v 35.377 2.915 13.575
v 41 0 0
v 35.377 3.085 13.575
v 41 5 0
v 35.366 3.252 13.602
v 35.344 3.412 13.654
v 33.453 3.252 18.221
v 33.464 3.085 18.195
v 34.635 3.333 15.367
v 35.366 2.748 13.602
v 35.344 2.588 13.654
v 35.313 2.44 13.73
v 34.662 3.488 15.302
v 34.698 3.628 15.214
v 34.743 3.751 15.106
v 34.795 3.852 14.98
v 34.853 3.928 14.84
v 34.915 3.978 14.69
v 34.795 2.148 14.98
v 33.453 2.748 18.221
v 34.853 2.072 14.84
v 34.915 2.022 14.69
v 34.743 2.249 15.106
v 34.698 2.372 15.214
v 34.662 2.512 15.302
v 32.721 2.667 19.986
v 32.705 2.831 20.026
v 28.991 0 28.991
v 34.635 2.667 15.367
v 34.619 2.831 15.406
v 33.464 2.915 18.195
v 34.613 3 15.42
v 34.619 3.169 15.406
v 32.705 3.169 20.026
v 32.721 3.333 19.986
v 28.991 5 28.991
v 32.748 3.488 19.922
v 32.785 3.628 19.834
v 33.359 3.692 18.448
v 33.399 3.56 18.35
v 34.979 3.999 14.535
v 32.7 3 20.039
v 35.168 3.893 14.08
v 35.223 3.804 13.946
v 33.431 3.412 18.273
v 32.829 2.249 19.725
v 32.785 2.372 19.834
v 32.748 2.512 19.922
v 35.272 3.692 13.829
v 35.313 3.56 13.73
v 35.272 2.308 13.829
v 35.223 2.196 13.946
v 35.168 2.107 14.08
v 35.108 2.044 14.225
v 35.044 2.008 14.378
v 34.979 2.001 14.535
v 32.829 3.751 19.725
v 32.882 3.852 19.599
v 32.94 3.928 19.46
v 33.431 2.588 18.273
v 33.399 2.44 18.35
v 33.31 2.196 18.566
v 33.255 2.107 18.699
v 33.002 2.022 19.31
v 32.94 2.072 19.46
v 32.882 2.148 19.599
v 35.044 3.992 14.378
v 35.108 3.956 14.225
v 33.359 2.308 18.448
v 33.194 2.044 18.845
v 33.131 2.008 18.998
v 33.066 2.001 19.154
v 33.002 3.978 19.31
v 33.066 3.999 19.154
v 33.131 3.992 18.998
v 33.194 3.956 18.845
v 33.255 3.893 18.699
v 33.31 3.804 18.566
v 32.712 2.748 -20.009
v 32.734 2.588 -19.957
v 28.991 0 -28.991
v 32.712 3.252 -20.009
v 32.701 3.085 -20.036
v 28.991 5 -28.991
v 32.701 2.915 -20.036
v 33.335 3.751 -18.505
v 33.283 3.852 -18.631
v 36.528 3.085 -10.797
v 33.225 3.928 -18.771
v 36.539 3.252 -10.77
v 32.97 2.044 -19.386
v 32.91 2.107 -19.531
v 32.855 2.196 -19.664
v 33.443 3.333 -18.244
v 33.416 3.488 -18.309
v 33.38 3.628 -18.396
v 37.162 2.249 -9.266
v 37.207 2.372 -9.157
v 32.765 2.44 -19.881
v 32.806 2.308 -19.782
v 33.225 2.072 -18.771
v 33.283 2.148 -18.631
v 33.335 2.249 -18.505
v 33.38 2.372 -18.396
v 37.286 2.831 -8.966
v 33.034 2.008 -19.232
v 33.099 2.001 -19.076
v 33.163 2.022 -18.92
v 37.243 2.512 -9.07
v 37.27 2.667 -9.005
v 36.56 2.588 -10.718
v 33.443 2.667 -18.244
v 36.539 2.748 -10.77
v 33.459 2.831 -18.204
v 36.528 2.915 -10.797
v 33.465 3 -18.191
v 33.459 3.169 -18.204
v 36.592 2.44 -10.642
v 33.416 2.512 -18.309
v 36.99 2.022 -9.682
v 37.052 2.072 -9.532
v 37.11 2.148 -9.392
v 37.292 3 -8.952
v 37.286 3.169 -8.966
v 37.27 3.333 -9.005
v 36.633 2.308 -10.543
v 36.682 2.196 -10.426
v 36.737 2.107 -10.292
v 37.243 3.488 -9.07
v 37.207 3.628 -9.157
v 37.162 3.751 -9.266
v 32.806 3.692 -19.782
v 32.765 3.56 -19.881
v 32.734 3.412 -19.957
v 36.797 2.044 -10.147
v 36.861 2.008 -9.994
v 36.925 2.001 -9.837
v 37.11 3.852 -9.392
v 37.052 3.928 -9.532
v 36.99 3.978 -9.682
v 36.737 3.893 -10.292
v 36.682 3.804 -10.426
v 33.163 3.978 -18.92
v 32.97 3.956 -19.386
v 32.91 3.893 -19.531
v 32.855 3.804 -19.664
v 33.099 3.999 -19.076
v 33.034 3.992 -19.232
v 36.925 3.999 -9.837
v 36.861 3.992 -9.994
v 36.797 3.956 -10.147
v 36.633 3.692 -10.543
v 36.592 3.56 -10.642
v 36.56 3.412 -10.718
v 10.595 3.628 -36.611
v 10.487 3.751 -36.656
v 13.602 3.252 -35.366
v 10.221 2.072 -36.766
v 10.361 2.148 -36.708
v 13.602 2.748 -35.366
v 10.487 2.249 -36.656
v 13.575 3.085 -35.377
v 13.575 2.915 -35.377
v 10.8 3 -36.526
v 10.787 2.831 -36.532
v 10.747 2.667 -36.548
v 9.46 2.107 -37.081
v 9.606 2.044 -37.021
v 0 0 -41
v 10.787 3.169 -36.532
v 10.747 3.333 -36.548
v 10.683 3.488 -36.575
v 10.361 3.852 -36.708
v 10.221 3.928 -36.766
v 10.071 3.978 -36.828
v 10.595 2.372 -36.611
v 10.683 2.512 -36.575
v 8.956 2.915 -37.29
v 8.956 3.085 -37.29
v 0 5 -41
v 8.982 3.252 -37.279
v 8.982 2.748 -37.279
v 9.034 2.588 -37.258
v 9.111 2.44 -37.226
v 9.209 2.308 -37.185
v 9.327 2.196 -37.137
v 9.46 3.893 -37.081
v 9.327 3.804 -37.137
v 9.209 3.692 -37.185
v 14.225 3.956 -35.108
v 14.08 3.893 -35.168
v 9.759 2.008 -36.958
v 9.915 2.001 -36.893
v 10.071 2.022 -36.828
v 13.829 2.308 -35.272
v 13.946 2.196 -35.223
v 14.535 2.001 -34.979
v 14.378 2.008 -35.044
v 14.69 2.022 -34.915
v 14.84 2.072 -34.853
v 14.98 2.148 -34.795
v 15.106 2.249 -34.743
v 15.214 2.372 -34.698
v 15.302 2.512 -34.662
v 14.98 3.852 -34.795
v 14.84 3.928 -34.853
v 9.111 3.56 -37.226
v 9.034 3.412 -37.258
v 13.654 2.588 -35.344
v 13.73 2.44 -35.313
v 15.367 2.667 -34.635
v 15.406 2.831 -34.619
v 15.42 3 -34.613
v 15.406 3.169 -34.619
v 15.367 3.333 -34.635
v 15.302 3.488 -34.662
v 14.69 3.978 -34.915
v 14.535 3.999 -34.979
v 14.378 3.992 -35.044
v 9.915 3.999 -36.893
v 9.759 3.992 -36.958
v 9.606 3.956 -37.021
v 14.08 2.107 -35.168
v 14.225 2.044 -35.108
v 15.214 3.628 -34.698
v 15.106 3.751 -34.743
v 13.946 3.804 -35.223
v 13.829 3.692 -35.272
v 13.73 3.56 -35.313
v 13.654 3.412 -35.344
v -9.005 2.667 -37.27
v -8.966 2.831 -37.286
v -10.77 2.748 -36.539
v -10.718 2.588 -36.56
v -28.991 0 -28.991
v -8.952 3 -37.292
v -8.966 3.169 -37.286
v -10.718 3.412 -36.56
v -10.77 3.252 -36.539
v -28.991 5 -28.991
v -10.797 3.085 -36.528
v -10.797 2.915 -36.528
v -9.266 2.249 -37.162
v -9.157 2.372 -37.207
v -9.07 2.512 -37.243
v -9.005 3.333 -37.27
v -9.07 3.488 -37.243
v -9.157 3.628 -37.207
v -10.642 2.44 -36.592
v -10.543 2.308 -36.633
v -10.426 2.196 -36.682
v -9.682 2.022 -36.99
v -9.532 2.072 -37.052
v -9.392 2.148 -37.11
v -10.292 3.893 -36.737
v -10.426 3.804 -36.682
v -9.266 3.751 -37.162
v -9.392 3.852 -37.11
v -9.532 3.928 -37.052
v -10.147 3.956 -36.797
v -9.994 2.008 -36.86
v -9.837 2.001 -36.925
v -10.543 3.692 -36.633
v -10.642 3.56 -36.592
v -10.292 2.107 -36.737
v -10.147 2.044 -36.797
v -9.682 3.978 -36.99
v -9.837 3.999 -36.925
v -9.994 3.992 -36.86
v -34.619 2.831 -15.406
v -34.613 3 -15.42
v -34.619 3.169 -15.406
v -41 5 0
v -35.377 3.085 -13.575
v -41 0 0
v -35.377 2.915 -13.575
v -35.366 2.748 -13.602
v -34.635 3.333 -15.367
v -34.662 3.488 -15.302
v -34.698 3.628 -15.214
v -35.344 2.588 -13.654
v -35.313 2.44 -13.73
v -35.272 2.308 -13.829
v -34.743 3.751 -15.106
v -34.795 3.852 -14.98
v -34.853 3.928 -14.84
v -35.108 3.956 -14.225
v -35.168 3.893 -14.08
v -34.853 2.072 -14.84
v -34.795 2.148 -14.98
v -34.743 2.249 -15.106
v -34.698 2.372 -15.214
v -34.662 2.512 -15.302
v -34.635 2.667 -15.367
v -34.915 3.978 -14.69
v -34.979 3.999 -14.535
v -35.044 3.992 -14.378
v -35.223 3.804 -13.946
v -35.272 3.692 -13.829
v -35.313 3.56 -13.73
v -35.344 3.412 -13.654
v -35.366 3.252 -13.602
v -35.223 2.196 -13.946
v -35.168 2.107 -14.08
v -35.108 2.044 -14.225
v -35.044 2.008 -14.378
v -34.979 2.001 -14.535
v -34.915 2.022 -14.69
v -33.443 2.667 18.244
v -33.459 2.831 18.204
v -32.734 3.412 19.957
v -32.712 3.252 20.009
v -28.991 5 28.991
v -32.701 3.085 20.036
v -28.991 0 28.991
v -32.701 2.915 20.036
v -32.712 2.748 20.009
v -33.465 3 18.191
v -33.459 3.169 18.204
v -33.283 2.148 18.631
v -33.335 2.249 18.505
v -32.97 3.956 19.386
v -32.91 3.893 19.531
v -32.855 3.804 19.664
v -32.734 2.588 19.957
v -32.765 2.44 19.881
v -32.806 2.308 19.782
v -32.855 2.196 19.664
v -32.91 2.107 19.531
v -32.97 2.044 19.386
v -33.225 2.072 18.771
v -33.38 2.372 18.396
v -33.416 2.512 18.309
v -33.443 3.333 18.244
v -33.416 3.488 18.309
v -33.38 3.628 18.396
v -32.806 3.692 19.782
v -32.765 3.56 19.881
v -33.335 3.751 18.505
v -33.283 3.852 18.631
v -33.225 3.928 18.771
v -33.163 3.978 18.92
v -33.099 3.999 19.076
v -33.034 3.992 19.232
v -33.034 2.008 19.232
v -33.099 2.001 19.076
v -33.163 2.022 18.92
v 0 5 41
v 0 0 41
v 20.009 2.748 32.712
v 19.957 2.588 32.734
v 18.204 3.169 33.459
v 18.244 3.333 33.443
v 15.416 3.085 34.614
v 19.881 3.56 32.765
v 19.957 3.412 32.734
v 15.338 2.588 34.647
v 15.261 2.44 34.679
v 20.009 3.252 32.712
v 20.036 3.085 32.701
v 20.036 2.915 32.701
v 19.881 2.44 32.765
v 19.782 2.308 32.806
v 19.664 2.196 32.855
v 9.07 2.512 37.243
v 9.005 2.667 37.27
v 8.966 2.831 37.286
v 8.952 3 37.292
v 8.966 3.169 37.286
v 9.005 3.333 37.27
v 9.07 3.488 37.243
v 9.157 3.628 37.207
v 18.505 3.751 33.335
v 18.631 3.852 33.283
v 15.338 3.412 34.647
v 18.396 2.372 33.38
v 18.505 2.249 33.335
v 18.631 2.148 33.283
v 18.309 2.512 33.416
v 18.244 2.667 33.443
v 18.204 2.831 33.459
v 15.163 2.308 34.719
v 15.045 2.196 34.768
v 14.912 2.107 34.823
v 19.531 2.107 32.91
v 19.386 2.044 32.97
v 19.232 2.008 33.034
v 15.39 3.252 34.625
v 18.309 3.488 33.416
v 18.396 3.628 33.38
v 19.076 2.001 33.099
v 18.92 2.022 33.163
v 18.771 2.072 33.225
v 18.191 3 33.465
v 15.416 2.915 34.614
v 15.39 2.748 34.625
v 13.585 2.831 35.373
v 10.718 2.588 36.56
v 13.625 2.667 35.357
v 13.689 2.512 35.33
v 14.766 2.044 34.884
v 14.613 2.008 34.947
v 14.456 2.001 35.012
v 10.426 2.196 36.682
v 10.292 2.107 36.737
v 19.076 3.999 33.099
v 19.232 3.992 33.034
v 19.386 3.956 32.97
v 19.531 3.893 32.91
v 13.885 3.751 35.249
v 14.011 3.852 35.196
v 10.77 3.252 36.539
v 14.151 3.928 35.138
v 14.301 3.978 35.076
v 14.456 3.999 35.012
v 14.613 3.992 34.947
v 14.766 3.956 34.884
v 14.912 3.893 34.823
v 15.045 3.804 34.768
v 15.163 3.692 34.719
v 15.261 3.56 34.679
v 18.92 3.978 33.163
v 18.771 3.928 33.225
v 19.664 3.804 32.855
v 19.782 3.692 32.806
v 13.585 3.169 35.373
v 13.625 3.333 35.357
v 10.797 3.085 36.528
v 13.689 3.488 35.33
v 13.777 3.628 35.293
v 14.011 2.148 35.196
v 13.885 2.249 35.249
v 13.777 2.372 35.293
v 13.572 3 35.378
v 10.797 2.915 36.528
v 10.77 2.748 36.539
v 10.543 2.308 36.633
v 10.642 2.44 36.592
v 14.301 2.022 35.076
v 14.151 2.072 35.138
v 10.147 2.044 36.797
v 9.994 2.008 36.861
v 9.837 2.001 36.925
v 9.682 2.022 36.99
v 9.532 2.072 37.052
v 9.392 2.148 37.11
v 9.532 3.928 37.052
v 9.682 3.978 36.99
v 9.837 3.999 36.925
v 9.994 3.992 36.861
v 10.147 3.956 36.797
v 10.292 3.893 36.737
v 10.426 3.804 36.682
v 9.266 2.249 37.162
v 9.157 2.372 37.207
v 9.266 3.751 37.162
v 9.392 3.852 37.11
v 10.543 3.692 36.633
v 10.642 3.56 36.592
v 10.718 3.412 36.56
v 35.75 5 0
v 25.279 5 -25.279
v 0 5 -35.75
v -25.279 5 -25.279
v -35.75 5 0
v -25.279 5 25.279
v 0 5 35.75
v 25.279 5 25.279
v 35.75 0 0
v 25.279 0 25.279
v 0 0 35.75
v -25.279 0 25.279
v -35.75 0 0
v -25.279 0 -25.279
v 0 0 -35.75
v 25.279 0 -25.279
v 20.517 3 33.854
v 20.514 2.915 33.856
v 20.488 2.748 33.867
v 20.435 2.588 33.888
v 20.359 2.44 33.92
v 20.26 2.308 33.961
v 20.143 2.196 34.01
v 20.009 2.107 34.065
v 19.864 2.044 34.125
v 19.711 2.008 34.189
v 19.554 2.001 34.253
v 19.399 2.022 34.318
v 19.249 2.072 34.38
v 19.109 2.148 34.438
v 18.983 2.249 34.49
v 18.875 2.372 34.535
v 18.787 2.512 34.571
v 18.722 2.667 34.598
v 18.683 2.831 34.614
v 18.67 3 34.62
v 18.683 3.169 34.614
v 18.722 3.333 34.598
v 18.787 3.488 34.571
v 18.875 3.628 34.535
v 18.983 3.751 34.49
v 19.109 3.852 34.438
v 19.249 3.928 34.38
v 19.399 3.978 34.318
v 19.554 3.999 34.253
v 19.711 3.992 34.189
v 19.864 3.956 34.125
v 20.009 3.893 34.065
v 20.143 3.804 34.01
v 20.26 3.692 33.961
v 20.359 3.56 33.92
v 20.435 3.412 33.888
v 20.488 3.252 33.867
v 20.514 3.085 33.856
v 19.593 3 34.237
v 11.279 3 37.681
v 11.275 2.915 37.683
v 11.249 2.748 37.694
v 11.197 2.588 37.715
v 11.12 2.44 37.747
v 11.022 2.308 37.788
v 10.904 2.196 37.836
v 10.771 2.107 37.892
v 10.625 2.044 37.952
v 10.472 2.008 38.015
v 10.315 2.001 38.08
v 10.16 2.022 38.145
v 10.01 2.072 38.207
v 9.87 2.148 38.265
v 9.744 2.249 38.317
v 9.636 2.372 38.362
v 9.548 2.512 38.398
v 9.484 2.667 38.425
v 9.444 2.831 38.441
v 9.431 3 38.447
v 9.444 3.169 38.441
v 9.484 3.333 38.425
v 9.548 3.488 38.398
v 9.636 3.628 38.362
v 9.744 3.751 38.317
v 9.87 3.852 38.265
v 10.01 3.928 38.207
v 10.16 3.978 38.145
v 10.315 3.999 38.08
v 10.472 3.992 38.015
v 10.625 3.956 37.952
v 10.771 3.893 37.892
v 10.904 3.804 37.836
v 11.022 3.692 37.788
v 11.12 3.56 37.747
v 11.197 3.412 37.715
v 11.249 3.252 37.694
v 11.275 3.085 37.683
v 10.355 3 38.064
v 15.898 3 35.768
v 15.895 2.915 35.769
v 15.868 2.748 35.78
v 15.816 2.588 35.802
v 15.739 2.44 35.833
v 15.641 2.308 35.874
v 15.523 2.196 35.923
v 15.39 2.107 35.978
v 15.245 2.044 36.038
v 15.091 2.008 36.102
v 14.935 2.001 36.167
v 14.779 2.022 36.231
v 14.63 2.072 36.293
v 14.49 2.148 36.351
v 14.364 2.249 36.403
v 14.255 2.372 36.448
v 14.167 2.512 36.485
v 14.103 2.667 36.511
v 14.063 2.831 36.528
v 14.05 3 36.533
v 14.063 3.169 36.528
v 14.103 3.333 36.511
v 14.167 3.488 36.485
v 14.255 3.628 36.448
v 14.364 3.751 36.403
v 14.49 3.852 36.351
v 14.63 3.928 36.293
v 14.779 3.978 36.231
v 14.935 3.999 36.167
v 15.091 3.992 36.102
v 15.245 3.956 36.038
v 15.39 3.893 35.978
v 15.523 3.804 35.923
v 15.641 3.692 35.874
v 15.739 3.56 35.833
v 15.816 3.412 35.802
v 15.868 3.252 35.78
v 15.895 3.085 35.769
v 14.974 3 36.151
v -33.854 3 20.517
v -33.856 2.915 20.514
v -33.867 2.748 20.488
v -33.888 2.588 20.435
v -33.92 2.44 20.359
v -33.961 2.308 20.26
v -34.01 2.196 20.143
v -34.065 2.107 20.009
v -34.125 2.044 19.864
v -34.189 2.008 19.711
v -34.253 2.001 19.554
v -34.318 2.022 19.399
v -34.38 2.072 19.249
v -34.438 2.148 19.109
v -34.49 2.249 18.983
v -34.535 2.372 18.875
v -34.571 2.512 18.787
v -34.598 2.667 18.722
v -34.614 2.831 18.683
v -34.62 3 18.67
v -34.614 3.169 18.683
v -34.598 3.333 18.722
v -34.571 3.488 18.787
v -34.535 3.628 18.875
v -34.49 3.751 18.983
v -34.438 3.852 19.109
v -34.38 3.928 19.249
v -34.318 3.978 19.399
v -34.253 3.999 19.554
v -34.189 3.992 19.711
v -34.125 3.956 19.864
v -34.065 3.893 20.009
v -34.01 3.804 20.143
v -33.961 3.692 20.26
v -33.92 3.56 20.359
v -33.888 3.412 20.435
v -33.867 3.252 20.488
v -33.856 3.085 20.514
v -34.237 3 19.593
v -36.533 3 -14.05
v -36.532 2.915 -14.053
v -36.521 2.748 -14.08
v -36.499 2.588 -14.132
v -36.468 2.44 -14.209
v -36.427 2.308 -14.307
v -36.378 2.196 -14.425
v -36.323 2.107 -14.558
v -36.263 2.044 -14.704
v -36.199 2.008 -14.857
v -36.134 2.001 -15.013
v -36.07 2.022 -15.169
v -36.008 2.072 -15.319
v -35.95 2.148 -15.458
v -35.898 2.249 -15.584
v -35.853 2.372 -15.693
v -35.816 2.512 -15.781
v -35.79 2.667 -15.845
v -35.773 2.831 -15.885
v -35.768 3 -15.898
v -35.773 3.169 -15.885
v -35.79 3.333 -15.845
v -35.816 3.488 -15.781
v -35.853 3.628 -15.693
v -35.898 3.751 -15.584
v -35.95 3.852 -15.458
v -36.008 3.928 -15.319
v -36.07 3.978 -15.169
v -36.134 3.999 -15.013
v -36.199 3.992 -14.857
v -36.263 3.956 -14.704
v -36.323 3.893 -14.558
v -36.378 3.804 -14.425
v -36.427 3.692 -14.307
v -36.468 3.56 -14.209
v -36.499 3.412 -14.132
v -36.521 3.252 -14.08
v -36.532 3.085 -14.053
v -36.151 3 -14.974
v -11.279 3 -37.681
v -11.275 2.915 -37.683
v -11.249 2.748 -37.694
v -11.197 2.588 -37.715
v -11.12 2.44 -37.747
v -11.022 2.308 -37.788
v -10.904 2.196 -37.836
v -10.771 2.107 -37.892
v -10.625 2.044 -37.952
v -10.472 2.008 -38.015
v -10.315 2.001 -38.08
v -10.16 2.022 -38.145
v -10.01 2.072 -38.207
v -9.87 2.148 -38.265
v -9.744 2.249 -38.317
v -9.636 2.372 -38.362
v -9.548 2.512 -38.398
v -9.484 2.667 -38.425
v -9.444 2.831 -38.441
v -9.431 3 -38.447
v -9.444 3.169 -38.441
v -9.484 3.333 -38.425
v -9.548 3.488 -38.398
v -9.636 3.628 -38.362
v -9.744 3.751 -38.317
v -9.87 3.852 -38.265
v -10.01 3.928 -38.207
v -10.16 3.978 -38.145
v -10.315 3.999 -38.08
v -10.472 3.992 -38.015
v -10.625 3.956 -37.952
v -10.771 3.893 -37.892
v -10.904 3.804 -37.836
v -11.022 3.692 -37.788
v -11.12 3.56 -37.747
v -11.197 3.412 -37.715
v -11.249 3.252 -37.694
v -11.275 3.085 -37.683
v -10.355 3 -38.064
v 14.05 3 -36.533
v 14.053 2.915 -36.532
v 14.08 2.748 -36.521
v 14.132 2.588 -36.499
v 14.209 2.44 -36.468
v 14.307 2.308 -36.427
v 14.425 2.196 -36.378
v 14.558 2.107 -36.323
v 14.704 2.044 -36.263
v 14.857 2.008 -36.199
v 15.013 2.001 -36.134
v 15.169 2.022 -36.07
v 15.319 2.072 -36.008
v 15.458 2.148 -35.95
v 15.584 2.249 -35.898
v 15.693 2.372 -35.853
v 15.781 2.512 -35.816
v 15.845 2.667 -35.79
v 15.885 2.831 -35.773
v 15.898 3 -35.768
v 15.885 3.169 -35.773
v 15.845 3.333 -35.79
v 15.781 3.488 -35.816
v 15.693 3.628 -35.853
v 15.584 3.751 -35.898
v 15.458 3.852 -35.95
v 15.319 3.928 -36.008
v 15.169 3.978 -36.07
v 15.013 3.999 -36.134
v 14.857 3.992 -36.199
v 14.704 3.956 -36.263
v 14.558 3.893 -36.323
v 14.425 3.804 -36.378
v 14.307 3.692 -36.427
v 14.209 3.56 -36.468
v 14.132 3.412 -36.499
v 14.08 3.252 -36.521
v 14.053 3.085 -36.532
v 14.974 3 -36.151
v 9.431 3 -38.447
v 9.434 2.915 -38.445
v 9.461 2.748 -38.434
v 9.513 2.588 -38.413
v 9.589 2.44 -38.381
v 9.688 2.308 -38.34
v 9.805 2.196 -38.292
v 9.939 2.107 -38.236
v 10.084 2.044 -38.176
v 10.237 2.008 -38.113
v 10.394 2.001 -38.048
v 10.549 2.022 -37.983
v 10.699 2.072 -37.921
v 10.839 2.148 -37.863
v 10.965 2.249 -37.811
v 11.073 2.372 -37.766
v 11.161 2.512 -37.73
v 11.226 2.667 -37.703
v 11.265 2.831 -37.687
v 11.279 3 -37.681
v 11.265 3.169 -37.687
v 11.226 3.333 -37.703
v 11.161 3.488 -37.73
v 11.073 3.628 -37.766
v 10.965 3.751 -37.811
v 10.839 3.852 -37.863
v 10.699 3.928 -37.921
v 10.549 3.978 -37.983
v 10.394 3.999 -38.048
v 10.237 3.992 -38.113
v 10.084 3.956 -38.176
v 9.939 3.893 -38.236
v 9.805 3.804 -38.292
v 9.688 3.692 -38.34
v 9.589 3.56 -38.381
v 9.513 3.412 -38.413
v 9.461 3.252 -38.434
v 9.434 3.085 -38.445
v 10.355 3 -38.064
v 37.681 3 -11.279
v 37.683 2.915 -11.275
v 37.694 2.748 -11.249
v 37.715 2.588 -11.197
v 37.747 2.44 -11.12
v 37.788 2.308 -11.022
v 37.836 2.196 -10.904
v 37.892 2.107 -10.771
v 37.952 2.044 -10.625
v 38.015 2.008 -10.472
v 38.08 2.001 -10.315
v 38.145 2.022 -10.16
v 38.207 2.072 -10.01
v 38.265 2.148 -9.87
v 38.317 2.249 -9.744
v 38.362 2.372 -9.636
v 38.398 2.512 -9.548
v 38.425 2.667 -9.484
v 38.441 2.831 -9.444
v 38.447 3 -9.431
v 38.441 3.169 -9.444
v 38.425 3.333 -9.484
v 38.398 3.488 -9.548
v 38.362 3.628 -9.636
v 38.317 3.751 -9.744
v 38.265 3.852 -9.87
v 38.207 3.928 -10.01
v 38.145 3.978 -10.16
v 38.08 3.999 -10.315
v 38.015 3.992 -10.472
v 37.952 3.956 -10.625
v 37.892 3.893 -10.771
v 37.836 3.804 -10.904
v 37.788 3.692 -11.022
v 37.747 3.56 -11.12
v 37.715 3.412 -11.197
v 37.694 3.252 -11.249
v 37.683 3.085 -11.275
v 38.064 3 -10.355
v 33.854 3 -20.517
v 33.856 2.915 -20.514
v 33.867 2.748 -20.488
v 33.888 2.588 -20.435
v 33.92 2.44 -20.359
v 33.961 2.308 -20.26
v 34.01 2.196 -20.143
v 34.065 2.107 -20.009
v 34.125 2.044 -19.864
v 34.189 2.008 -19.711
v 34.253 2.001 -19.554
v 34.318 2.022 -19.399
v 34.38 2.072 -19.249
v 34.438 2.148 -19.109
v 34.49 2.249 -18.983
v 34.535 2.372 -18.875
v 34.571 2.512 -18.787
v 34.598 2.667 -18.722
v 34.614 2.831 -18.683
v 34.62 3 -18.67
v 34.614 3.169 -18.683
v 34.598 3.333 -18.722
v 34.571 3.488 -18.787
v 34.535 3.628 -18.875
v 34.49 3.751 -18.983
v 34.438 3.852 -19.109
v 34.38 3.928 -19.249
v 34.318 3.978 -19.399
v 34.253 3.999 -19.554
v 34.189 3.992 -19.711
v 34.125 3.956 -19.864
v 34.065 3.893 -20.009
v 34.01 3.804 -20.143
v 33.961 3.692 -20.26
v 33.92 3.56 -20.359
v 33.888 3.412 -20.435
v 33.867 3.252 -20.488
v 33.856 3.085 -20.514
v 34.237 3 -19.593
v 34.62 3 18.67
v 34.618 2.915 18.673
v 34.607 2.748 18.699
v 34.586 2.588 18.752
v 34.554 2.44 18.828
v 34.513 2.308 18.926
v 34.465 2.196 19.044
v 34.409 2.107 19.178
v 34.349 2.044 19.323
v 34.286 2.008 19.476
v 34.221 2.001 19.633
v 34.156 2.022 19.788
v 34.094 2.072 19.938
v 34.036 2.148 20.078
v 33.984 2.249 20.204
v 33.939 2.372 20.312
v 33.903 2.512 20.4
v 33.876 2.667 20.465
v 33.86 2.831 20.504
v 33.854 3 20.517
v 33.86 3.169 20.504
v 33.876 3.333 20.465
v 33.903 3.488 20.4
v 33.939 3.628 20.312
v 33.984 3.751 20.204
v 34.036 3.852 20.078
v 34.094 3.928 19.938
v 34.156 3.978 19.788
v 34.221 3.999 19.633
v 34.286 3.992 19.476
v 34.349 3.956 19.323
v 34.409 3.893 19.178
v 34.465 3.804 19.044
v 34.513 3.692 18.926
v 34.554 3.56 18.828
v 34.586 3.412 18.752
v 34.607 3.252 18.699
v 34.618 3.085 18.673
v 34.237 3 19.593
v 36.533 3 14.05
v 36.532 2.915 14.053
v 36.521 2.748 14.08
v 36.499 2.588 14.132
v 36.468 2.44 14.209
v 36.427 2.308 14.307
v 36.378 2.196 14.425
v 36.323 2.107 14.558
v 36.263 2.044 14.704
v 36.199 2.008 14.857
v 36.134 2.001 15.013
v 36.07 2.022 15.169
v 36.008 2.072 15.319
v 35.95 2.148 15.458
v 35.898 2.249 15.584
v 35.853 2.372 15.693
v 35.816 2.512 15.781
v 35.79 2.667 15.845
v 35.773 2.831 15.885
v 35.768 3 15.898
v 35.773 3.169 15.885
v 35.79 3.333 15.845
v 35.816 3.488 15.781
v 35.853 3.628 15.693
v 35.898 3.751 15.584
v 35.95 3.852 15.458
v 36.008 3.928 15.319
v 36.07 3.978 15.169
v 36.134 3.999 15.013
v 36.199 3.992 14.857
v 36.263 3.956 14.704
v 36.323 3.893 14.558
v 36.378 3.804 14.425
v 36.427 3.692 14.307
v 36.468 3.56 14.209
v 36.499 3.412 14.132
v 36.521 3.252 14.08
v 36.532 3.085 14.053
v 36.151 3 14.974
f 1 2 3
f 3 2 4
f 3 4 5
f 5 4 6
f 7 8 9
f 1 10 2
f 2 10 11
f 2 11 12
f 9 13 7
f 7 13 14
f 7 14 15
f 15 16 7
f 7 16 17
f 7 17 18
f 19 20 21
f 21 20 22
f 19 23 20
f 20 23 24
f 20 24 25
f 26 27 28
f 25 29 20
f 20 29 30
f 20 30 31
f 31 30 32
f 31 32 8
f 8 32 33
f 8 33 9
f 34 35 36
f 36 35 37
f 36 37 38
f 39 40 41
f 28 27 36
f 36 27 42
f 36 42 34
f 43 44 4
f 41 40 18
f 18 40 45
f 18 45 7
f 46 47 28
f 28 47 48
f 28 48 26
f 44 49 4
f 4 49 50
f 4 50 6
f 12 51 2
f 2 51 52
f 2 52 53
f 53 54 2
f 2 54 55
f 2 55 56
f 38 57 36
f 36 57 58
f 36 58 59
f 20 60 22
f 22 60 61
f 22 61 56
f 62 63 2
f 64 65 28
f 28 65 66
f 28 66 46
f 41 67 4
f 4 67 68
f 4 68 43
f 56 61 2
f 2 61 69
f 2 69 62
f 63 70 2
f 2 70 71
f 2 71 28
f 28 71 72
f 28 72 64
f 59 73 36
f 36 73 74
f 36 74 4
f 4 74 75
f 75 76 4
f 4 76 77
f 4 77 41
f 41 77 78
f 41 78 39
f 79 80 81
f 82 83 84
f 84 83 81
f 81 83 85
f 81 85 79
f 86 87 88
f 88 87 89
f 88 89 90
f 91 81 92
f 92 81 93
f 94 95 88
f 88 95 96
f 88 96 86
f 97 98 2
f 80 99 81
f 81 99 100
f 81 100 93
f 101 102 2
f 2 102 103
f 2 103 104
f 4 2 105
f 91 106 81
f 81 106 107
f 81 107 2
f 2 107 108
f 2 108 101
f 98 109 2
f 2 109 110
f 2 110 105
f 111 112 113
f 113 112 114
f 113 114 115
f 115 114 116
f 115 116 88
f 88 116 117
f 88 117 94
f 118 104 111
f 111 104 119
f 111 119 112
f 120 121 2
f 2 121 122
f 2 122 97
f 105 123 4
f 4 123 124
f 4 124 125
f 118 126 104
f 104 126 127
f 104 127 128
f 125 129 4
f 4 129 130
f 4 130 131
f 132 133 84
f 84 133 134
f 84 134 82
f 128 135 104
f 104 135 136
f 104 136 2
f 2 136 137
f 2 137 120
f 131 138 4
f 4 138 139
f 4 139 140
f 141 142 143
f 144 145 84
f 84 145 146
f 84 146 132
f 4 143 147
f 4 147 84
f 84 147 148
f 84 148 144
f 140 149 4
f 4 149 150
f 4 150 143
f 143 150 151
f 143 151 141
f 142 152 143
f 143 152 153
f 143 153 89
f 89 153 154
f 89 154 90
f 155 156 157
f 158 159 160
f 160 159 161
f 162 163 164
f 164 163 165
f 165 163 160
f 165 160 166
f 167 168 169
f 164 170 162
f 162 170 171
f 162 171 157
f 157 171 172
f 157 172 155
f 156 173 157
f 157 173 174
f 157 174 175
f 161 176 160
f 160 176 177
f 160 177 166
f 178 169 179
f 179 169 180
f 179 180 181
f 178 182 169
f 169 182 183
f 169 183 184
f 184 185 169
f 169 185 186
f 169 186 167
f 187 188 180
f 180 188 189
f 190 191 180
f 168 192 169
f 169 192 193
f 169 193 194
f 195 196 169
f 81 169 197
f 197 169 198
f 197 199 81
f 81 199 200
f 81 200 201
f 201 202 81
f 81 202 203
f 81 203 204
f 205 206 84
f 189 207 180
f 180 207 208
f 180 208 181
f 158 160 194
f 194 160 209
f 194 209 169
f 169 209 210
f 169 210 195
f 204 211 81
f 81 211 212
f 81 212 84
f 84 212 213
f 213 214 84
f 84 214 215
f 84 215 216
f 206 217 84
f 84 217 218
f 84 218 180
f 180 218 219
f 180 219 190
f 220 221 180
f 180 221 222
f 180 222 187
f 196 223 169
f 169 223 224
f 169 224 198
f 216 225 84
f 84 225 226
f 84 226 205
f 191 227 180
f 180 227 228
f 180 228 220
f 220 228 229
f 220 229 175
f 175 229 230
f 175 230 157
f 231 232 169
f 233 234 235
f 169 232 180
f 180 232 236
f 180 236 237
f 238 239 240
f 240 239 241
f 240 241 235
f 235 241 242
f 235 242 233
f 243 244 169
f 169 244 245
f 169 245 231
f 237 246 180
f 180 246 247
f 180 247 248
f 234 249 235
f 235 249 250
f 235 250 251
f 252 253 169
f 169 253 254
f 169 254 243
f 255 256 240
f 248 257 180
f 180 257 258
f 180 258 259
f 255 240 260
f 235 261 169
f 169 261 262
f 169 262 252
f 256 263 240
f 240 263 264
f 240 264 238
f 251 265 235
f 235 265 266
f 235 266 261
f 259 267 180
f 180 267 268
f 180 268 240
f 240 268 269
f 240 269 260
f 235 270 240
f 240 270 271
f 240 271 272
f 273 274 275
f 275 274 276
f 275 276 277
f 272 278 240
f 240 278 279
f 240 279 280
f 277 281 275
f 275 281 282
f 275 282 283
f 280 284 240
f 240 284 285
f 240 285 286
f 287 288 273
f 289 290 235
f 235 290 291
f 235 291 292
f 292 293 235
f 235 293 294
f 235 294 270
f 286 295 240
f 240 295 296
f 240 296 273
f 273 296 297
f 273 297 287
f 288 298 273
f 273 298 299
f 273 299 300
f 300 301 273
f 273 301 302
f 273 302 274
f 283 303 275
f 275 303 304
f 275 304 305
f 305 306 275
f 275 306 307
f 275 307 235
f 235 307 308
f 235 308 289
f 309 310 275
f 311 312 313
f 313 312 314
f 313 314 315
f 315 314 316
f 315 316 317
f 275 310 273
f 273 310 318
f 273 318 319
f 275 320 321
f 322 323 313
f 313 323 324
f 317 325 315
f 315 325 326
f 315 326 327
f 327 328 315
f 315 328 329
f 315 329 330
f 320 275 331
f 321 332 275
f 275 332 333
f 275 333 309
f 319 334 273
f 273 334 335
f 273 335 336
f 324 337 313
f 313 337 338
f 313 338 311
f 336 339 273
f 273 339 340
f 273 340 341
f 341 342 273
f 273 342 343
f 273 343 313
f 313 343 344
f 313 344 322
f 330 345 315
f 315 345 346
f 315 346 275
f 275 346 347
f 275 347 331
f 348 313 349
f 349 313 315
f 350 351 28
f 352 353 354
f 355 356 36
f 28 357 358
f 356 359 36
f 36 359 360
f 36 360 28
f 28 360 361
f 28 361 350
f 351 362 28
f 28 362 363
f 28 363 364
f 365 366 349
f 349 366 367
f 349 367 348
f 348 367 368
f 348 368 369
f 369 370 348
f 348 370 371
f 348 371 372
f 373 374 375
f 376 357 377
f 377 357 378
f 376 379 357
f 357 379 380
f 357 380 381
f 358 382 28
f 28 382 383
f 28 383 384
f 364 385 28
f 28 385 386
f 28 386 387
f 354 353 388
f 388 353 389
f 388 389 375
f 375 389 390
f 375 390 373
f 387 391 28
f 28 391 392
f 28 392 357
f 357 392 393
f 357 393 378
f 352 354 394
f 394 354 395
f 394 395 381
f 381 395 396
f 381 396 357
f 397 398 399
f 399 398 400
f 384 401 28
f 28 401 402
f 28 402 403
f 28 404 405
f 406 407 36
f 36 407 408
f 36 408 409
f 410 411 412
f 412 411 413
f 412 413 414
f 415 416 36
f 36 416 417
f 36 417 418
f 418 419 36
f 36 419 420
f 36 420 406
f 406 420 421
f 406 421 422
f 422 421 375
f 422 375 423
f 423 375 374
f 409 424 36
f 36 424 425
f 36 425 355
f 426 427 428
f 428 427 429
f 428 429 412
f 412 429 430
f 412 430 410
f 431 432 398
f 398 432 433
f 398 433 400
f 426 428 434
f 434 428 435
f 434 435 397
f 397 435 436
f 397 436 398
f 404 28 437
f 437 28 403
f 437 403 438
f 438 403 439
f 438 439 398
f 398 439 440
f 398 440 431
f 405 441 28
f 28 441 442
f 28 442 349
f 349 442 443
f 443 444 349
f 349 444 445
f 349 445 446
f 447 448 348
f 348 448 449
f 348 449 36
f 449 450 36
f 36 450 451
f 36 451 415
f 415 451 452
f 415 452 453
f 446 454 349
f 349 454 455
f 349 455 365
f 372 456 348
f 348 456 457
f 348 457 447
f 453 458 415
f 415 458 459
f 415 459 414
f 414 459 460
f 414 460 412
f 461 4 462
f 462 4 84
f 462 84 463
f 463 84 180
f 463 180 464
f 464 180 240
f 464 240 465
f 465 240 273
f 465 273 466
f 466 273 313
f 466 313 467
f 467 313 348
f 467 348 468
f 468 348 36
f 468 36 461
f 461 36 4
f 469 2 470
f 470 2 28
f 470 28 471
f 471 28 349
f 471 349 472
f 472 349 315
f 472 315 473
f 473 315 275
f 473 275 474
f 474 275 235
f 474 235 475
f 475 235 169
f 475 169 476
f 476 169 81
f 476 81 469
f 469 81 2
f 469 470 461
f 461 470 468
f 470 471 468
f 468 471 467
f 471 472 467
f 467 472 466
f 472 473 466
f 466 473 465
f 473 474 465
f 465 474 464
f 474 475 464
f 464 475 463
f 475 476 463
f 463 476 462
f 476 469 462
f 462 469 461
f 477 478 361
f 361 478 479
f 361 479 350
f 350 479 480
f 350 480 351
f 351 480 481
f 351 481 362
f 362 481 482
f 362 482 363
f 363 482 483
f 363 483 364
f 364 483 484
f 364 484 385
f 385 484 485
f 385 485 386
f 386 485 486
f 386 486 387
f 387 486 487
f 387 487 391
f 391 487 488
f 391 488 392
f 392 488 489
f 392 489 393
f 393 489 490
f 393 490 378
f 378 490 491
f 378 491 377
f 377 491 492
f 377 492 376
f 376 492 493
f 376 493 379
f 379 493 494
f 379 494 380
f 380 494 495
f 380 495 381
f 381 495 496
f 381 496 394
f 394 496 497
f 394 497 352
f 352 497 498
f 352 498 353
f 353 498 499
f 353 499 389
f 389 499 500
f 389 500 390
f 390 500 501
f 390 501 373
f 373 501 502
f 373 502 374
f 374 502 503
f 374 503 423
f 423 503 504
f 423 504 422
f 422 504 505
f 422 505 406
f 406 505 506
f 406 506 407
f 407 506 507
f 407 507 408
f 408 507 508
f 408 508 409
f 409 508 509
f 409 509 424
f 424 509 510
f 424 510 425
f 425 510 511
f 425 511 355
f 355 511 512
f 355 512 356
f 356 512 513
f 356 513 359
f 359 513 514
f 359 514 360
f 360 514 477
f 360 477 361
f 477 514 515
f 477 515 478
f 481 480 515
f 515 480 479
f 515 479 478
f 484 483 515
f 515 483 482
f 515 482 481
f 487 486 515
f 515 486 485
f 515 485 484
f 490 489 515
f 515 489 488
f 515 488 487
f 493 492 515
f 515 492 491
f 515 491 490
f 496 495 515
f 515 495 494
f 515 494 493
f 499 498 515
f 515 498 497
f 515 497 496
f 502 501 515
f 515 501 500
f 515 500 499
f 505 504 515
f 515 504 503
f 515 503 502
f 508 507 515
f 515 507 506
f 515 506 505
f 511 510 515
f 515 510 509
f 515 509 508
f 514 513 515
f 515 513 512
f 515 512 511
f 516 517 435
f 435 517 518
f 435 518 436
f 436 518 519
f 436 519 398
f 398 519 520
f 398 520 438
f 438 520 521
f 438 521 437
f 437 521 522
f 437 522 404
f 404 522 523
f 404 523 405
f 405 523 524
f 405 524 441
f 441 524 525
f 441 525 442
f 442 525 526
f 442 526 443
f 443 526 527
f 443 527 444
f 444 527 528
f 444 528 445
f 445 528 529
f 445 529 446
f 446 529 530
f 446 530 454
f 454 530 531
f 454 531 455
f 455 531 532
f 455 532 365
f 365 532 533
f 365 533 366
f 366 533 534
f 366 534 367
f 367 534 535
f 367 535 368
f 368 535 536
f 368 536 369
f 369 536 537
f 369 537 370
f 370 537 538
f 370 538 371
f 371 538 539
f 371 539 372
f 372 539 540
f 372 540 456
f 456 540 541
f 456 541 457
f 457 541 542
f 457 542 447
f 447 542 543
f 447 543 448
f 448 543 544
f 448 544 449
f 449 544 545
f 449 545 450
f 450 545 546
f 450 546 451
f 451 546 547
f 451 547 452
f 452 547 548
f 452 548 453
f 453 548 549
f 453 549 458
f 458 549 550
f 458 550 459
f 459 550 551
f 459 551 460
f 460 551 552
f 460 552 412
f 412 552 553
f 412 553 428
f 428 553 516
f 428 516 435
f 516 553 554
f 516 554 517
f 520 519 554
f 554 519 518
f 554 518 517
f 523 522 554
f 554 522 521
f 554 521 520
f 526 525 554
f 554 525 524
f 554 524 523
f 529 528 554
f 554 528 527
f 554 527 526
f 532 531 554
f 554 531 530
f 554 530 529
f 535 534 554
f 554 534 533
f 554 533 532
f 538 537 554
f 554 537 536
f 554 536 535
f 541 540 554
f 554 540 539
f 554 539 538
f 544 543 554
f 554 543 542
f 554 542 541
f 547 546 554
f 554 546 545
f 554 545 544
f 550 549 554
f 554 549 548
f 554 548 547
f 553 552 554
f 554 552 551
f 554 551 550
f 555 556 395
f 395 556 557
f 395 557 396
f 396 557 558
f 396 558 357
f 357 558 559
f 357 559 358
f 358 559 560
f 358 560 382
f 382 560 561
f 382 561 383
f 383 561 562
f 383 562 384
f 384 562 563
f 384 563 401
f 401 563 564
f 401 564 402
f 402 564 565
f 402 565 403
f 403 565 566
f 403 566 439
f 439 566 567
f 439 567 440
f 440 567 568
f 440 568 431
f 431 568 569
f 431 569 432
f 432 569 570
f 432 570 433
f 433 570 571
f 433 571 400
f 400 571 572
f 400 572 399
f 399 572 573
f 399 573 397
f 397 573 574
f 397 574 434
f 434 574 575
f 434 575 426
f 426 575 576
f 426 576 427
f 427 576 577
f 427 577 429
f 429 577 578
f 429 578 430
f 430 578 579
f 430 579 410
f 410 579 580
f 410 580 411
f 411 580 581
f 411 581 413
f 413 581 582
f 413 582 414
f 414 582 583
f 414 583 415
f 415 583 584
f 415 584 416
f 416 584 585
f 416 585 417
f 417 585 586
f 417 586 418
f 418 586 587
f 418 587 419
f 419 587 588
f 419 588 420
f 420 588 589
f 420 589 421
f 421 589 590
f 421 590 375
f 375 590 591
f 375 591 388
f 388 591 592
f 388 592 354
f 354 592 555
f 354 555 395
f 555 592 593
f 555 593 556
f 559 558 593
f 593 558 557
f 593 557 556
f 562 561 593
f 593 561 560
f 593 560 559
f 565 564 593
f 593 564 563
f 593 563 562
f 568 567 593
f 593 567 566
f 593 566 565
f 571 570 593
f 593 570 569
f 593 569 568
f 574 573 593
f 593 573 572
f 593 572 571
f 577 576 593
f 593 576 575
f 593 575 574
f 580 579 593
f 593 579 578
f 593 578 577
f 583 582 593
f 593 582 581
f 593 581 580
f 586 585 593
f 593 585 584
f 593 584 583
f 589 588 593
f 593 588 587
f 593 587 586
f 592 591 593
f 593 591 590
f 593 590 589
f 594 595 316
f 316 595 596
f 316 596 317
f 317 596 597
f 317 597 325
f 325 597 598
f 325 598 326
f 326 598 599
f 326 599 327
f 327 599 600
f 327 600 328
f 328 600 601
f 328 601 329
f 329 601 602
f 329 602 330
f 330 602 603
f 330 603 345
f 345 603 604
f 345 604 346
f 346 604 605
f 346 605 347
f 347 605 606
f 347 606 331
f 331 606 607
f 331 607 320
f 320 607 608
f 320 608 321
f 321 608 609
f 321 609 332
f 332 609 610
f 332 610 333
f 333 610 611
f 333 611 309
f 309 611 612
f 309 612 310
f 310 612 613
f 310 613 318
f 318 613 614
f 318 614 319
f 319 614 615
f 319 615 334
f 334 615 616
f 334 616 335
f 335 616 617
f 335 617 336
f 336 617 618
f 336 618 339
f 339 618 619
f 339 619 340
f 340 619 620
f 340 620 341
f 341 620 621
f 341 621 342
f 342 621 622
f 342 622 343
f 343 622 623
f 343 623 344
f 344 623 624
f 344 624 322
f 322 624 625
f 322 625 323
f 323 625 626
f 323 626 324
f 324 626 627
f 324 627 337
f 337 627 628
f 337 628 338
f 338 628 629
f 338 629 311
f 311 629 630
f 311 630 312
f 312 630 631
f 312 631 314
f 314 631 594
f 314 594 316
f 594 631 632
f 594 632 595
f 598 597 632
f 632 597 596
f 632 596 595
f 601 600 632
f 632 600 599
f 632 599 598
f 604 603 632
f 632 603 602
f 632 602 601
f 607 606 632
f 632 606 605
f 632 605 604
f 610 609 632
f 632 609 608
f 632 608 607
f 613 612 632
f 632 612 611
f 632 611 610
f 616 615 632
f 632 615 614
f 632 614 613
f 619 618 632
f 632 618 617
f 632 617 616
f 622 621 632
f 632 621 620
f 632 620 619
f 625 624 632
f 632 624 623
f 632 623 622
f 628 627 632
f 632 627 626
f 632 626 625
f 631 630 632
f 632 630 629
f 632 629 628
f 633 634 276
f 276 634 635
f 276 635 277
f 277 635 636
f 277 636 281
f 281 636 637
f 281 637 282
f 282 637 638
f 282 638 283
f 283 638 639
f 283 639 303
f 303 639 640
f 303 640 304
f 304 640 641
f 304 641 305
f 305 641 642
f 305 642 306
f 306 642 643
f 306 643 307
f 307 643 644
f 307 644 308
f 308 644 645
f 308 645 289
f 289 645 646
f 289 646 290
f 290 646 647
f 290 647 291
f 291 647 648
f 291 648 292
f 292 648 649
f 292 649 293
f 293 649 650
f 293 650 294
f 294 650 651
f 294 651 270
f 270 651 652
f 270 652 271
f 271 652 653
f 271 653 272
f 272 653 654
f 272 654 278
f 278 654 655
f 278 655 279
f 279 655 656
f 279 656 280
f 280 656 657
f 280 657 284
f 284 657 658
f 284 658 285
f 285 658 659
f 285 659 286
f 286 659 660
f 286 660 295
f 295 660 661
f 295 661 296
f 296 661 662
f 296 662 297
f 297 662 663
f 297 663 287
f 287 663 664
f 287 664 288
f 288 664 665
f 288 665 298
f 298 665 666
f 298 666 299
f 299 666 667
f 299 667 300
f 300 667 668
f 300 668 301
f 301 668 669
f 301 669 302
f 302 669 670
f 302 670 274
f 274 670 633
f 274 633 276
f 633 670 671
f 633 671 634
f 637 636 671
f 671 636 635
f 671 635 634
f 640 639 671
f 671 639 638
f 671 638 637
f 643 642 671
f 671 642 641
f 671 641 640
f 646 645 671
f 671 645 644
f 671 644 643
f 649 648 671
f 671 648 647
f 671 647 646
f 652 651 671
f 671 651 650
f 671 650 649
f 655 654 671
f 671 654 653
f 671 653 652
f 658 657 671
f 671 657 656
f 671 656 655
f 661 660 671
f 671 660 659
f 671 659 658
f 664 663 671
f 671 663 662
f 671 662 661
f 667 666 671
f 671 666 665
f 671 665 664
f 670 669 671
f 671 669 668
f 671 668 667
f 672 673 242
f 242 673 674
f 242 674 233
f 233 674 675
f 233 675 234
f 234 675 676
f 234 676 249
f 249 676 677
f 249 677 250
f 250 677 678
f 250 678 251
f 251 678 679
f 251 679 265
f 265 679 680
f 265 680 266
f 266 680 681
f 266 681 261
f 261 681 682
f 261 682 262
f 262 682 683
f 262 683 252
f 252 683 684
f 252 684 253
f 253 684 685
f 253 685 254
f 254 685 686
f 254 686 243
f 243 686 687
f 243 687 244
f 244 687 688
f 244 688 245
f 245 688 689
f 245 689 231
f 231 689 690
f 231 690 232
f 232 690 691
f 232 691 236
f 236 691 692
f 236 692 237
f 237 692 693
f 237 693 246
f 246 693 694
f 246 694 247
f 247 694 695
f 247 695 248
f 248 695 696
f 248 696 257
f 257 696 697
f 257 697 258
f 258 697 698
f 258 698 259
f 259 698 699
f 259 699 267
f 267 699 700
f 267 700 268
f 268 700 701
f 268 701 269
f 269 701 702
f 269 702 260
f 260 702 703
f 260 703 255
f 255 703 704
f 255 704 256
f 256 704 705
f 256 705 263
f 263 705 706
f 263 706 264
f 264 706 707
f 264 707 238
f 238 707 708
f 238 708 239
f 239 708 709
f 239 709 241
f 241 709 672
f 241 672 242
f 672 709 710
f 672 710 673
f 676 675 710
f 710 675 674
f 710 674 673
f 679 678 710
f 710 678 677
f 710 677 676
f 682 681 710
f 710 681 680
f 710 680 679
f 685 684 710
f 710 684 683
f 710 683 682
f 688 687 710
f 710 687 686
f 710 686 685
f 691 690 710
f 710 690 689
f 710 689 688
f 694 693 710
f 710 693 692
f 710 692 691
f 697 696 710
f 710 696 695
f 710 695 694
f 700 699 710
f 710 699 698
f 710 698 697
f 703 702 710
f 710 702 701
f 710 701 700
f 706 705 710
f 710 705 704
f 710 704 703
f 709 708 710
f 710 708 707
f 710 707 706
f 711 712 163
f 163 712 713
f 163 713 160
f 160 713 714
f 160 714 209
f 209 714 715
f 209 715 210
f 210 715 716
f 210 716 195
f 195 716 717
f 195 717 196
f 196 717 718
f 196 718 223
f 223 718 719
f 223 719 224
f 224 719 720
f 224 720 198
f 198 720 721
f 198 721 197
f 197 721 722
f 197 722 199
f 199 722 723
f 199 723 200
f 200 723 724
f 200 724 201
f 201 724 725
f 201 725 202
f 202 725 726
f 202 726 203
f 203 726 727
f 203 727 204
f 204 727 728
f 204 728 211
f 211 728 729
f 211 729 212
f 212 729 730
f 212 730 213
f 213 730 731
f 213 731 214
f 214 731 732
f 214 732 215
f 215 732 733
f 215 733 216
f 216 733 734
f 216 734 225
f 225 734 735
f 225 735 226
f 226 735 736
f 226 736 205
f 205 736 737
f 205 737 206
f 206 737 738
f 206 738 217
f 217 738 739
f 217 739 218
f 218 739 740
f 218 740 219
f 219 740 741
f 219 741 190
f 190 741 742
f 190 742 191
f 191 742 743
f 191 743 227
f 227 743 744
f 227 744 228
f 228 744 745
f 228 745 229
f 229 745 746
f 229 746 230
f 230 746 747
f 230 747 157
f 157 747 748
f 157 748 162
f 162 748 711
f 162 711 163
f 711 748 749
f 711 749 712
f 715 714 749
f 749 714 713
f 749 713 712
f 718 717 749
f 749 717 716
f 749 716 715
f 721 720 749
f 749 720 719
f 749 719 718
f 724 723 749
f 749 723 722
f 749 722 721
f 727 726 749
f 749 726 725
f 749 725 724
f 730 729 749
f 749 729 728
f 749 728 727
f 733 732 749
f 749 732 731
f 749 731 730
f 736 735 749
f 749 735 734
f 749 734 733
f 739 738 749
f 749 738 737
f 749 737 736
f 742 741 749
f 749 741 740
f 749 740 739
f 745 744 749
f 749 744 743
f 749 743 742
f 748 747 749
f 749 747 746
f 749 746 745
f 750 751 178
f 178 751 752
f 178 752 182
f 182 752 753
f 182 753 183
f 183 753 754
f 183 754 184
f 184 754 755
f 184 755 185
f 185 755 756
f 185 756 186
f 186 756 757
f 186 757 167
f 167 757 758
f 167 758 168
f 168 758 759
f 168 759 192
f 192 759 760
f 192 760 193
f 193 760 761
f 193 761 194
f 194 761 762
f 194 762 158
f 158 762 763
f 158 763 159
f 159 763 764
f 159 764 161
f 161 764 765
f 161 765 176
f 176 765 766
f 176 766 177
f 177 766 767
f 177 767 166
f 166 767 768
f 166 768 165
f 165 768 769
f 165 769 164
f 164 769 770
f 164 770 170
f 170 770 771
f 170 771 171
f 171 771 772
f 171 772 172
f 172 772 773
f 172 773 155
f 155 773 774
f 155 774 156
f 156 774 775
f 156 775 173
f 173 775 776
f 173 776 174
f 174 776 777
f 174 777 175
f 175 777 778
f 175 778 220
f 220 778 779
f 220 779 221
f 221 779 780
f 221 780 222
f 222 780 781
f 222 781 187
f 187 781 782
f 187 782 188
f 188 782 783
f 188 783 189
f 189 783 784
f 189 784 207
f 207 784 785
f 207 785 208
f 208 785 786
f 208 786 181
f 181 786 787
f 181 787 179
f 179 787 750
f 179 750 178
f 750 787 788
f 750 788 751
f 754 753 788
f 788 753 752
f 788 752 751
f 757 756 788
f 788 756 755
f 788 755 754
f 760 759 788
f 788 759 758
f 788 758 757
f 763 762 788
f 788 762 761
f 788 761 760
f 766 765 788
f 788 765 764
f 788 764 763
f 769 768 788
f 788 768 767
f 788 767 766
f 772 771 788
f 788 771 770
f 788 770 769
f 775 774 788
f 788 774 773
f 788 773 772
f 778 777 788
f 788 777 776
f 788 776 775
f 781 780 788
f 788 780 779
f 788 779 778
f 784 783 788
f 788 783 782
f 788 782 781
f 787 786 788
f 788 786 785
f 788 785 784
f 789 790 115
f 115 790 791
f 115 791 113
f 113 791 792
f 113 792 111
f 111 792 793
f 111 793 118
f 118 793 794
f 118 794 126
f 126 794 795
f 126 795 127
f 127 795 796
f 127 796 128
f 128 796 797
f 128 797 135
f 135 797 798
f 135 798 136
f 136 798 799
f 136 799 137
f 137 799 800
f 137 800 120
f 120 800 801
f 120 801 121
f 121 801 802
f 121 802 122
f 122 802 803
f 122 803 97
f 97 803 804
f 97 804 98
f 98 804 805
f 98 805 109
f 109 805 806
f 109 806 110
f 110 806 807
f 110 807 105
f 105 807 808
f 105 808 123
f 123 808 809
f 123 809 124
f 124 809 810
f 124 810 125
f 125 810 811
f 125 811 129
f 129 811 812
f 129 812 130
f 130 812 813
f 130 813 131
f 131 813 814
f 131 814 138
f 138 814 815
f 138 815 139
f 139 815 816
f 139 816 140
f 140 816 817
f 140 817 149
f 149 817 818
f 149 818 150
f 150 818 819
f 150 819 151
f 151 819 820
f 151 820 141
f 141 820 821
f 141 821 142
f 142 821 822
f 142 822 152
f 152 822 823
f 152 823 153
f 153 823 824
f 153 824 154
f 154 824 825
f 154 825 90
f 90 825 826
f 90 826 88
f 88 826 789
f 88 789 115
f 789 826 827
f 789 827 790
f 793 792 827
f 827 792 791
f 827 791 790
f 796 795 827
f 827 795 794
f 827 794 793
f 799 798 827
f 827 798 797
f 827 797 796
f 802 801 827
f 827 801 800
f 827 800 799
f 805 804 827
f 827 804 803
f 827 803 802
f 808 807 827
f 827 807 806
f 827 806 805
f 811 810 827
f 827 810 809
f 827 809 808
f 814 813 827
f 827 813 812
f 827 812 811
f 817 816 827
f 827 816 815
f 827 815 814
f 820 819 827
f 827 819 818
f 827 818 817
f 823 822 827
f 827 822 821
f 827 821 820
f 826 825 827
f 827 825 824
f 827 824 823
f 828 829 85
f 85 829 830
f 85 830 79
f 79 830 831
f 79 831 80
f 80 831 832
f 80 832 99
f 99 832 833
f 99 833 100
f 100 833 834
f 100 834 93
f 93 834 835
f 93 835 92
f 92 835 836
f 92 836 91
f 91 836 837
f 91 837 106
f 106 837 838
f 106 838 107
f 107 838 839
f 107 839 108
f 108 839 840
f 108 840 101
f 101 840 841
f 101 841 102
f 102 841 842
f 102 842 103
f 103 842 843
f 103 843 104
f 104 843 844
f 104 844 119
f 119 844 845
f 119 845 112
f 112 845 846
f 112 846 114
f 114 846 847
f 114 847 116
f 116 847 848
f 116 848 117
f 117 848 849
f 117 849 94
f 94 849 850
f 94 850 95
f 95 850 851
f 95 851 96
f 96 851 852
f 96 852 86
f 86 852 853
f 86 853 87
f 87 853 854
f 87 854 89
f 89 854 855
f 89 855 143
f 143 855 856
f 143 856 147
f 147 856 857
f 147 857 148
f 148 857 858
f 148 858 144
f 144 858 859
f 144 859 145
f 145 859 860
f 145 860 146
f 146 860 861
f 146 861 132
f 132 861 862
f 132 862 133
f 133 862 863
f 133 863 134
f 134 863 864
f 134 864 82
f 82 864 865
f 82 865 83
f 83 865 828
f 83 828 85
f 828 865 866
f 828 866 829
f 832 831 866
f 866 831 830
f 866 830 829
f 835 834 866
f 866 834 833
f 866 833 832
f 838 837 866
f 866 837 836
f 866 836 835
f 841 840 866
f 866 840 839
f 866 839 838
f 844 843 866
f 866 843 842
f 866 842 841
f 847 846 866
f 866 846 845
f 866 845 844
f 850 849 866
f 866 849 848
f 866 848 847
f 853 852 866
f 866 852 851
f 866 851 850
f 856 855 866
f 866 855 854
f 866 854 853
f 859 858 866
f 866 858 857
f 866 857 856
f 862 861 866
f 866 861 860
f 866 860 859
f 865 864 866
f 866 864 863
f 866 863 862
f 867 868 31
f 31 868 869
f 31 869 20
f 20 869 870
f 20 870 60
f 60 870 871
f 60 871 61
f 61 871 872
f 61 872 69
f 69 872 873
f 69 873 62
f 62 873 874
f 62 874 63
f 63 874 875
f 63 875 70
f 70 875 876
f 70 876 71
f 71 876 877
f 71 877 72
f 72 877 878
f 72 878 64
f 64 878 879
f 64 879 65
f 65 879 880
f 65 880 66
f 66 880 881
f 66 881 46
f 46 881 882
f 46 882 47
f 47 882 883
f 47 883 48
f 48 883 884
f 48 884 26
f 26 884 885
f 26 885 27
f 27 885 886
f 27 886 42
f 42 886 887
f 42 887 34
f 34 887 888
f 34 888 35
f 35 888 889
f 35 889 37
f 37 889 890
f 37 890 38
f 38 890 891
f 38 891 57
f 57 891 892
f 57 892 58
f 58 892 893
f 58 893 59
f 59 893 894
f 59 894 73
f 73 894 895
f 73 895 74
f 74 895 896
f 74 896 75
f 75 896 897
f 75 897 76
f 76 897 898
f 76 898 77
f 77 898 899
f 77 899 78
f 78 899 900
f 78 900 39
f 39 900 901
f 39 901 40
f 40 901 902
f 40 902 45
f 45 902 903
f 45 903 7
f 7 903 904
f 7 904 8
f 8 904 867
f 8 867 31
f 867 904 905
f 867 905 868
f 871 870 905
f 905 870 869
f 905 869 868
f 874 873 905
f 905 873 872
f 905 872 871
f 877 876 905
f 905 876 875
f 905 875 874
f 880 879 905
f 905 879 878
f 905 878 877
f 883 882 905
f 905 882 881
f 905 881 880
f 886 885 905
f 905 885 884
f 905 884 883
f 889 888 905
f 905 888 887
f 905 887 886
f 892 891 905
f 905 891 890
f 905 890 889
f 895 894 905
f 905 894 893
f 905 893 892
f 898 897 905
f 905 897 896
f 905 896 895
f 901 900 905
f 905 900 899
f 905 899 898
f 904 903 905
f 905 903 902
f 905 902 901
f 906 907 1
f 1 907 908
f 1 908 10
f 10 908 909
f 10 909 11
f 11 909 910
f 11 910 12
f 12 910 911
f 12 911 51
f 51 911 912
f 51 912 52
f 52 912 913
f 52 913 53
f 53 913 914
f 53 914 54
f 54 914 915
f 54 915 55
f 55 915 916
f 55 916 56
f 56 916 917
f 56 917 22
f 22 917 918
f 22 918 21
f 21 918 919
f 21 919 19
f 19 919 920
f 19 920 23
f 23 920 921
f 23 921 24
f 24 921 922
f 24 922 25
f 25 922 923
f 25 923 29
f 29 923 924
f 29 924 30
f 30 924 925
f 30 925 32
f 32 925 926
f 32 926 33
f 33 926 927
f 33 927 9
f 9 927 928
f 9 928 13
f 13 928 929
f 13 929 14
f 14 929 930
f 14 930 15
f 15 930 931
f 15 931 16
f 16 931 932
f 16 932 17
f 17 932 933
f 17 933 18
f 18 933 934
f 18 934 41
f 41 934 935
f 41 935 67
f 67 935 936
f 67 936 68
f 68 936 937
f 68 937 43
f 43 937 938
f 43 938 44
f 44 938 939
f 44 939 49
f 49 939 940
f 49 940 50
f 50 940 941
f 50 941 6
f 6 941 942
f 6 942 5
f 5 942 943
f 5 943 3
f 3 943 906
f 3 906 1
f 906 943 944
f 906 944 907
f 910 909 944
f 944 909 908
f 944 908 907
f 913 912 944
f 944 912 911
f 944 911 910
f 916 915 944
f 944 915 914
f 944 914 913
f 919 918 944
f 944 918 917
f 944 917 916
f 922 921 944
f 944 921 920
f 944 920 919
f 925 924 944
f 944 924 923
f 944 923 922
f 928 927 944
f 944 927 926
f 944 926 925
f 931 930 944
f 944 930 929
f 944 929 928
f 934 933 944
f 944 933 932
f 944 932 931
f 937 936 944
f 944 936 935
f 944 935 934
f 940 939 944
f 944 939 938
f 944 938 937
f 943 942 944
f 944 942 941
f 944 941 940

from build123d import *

# Parameters (mm, degrees)
BOSS_EXTRUDE1_DEPTH  = 5
CUT_EXTRUDE1_DEPTH   = 5
SKETCH6_R            = 1
BOSS_EXTRUDE5_DEPTH  = 1.25
SKETCH7_R            = 1
BOSS_EXTRUDE6_DEPTH  = 1.25
SKETCH8_R            = 1
BOSS_EXTRUDE7_DEPTH  = 1.25
BOSS_EXTRUDE8_START  = 1.25
SKETCH9_R            = 1
BOSS_EXTRUDE8_DEPTH  = 1.25
SKETCH10_R           = 1
BOSS_EXTRUDE12_DEPTH = 1.25
BOSS_EXTRUDE13_START = 1.25
SKETCH11_R           = 1
BOSS_EXTRUDE13_DEPTH = 1.25
BOSS_EXTRUDE14_START = 1.25
SKETCH12_R           = 1
BOSS_EXTRUDE14_DEPTH = 1.25


with BuildPart() as part:
    # Sketch3 → Boss-Extrude1 (new body)
    with BuildSketch(Plane(origin=(0, 0, 0), x_dir=(1, 0, 0), z_dir=(0, 1, 0))):
        Polygon((41, 0), (28.991378029, 28.991378029), (0, 41), (-28.991378029, 28.991378029), (-41, 0), (-28.991378029, -28.991378029), (0, -41), (28.991378029, -28.991378029), align=None)
    extrude(amount=BOSS_EXTRUDE1_DEPTH)

    # Sketch5 → Cut-Extrude1 (cut)
    with BuildSketch(Plane(origin=(0, 5, 0), x_dir=(1, 0, 0), z_dir=(0, 1, 0))):
        Polygon((35.75, 0), (25.279067427, 25.279067427), (0, 35.75), (-25.279067427, 25.279067427), (-35.75, 0), (-25.279067427, -25.279067427), (0, -35.75), (25.279067427, -25.279067427), align=None)
    extrude(amount=-CUT_EXTRUDE1_DEPTH, mode=Mode.SUBTRACT)

    # Sketch6 → Boss-Extrude5 (add)
    with BuildSketch(Plane(origin=(14.495689014, 0, 34.995689014), x_dir=(0.9238795325112827, 0, -0.38268343236509966), z_dir=(0.38268343236509966, 0, 0.9238795325112827))):
        with Locations(Location((0, 3, 0), (0, 0, 180))):
            Circle(SKETCH6_R)
        with Locations(Location((-5, 3, 0), (0, 0, 180))):
            Circle(SKETCH6_R)
        with Locations(Location((5, 3, 0), (0, 0, 180))):
            Circle(SKETCH6_R)
    extrude(amount=BOSS_EXTRUDE5_DEPTH)

    # Sketch7 → Boss-Extrude6 (add)
    with BuildSketch(Plane(origin=(-34.995689014, 0, 14.495689014), x_dir=(0.3826834323650997, 0, 0.9238795325112827), z_dir=(-0.9238795325112827, 0, 0.3826834323650997))):
        with Locations(Location((5, 3, 0), (0, 0, 180))):
            Circle(SKETCH7_R)
    extrude(amount=BOSS_EXTRUDE6_DEPTH)

    # Sketch8 → Boss-Extrude7 (add)
    with BuildSketch(Plane(origin=(-34.995689014, 0, -14.495689014), x_dir=(-0.3826834323650795, 0, 0.9238795325112911), z_dir=(-0.9238795325112911, 0, -0.3826834323650795))):
        with Locations(Location((0, 3, 0), (0, 0, 180))):
            Circle(SKETCH8_R)
    extrude(amount=BOSS_EXTRUDE7_DEPTH)

    # Sketch9 → Boss-Extrude8 (add)
    with BuildSketch(Plane(origin=(-14.495689014, 0, -34.995689014), x_dir=(-0.9238795325112826, 0, 0.38268343236509983), z_dir=(-0.38268343236509983, 0, -0.9238795325112826)).offset(BOSS_EXTRUDE8_START)):
        with Locations((-5, 3)):
            Circle(SKETCH9_R)
    extrude(amount=-BOSS_EXTRUDE8_DEPTH)

    # Sketch10 → Boss-Extrude12 (add)
    with BuildSketch(Plane(origin=(14.495689014, 0, -34.995689014), x_dir=(-0.923879532511291, 0, -0.38268343236507973), z_dir=(0.38268343236507973, 0, -0.923879532511291))):
        with Locations(Location((0, 3, 0), (0, 0, 180))):
            Circle(SKETCH10_R)
        with Locations(Location((5, 3, 0), (0, 0, 180))):
            Circle(SKETCH10_R)
    extrude(amount=BOSS_EXTRUDE12_DEPTH)

    # Sketch11 → Boss-Extrude13 (add)
    with BuildSketch(Plane(origin=(34.995689014, 0, -14.495689014), x_dir=(-0.3826834323651001, 0, -0.9238795325112825), z_dir=(0.9238795325112824, 0, -0.38268343236510005)).offset(BOSS_EXTRUDE13_START)):
        with Locations(Location((5, 3, 0), (0, 0, 180))):
            Circle(SKETCH11_R)
        with Locations((-5, 3)):
            Circle(SKETCH11_R)
    extrude(amount=-BOSS_EXTRUDE13_DEPTH)

    # Sketch12 → Boss-Extrude14 (add)
    with BuildSketch(Plane(origin=(34.995689014, 0, 14.495689014), x_dir=(0.3826834323650795, 0, -0.923879532511291), z_dir=(0.9238795325112911, 0, 0.38268343236507957)).offset(BOSS_EXTRUDE14_START)):
        with Locations((0, 3)):
            Circle(SKETCH12_R)
        with Locations(Location((-5, 3, 0), (0, 0, 180))):
            Circle(SKETCH12_R)
    extrude(amount=-BOSS_EXTRUDE14_DEPTH)


solid = part.part
